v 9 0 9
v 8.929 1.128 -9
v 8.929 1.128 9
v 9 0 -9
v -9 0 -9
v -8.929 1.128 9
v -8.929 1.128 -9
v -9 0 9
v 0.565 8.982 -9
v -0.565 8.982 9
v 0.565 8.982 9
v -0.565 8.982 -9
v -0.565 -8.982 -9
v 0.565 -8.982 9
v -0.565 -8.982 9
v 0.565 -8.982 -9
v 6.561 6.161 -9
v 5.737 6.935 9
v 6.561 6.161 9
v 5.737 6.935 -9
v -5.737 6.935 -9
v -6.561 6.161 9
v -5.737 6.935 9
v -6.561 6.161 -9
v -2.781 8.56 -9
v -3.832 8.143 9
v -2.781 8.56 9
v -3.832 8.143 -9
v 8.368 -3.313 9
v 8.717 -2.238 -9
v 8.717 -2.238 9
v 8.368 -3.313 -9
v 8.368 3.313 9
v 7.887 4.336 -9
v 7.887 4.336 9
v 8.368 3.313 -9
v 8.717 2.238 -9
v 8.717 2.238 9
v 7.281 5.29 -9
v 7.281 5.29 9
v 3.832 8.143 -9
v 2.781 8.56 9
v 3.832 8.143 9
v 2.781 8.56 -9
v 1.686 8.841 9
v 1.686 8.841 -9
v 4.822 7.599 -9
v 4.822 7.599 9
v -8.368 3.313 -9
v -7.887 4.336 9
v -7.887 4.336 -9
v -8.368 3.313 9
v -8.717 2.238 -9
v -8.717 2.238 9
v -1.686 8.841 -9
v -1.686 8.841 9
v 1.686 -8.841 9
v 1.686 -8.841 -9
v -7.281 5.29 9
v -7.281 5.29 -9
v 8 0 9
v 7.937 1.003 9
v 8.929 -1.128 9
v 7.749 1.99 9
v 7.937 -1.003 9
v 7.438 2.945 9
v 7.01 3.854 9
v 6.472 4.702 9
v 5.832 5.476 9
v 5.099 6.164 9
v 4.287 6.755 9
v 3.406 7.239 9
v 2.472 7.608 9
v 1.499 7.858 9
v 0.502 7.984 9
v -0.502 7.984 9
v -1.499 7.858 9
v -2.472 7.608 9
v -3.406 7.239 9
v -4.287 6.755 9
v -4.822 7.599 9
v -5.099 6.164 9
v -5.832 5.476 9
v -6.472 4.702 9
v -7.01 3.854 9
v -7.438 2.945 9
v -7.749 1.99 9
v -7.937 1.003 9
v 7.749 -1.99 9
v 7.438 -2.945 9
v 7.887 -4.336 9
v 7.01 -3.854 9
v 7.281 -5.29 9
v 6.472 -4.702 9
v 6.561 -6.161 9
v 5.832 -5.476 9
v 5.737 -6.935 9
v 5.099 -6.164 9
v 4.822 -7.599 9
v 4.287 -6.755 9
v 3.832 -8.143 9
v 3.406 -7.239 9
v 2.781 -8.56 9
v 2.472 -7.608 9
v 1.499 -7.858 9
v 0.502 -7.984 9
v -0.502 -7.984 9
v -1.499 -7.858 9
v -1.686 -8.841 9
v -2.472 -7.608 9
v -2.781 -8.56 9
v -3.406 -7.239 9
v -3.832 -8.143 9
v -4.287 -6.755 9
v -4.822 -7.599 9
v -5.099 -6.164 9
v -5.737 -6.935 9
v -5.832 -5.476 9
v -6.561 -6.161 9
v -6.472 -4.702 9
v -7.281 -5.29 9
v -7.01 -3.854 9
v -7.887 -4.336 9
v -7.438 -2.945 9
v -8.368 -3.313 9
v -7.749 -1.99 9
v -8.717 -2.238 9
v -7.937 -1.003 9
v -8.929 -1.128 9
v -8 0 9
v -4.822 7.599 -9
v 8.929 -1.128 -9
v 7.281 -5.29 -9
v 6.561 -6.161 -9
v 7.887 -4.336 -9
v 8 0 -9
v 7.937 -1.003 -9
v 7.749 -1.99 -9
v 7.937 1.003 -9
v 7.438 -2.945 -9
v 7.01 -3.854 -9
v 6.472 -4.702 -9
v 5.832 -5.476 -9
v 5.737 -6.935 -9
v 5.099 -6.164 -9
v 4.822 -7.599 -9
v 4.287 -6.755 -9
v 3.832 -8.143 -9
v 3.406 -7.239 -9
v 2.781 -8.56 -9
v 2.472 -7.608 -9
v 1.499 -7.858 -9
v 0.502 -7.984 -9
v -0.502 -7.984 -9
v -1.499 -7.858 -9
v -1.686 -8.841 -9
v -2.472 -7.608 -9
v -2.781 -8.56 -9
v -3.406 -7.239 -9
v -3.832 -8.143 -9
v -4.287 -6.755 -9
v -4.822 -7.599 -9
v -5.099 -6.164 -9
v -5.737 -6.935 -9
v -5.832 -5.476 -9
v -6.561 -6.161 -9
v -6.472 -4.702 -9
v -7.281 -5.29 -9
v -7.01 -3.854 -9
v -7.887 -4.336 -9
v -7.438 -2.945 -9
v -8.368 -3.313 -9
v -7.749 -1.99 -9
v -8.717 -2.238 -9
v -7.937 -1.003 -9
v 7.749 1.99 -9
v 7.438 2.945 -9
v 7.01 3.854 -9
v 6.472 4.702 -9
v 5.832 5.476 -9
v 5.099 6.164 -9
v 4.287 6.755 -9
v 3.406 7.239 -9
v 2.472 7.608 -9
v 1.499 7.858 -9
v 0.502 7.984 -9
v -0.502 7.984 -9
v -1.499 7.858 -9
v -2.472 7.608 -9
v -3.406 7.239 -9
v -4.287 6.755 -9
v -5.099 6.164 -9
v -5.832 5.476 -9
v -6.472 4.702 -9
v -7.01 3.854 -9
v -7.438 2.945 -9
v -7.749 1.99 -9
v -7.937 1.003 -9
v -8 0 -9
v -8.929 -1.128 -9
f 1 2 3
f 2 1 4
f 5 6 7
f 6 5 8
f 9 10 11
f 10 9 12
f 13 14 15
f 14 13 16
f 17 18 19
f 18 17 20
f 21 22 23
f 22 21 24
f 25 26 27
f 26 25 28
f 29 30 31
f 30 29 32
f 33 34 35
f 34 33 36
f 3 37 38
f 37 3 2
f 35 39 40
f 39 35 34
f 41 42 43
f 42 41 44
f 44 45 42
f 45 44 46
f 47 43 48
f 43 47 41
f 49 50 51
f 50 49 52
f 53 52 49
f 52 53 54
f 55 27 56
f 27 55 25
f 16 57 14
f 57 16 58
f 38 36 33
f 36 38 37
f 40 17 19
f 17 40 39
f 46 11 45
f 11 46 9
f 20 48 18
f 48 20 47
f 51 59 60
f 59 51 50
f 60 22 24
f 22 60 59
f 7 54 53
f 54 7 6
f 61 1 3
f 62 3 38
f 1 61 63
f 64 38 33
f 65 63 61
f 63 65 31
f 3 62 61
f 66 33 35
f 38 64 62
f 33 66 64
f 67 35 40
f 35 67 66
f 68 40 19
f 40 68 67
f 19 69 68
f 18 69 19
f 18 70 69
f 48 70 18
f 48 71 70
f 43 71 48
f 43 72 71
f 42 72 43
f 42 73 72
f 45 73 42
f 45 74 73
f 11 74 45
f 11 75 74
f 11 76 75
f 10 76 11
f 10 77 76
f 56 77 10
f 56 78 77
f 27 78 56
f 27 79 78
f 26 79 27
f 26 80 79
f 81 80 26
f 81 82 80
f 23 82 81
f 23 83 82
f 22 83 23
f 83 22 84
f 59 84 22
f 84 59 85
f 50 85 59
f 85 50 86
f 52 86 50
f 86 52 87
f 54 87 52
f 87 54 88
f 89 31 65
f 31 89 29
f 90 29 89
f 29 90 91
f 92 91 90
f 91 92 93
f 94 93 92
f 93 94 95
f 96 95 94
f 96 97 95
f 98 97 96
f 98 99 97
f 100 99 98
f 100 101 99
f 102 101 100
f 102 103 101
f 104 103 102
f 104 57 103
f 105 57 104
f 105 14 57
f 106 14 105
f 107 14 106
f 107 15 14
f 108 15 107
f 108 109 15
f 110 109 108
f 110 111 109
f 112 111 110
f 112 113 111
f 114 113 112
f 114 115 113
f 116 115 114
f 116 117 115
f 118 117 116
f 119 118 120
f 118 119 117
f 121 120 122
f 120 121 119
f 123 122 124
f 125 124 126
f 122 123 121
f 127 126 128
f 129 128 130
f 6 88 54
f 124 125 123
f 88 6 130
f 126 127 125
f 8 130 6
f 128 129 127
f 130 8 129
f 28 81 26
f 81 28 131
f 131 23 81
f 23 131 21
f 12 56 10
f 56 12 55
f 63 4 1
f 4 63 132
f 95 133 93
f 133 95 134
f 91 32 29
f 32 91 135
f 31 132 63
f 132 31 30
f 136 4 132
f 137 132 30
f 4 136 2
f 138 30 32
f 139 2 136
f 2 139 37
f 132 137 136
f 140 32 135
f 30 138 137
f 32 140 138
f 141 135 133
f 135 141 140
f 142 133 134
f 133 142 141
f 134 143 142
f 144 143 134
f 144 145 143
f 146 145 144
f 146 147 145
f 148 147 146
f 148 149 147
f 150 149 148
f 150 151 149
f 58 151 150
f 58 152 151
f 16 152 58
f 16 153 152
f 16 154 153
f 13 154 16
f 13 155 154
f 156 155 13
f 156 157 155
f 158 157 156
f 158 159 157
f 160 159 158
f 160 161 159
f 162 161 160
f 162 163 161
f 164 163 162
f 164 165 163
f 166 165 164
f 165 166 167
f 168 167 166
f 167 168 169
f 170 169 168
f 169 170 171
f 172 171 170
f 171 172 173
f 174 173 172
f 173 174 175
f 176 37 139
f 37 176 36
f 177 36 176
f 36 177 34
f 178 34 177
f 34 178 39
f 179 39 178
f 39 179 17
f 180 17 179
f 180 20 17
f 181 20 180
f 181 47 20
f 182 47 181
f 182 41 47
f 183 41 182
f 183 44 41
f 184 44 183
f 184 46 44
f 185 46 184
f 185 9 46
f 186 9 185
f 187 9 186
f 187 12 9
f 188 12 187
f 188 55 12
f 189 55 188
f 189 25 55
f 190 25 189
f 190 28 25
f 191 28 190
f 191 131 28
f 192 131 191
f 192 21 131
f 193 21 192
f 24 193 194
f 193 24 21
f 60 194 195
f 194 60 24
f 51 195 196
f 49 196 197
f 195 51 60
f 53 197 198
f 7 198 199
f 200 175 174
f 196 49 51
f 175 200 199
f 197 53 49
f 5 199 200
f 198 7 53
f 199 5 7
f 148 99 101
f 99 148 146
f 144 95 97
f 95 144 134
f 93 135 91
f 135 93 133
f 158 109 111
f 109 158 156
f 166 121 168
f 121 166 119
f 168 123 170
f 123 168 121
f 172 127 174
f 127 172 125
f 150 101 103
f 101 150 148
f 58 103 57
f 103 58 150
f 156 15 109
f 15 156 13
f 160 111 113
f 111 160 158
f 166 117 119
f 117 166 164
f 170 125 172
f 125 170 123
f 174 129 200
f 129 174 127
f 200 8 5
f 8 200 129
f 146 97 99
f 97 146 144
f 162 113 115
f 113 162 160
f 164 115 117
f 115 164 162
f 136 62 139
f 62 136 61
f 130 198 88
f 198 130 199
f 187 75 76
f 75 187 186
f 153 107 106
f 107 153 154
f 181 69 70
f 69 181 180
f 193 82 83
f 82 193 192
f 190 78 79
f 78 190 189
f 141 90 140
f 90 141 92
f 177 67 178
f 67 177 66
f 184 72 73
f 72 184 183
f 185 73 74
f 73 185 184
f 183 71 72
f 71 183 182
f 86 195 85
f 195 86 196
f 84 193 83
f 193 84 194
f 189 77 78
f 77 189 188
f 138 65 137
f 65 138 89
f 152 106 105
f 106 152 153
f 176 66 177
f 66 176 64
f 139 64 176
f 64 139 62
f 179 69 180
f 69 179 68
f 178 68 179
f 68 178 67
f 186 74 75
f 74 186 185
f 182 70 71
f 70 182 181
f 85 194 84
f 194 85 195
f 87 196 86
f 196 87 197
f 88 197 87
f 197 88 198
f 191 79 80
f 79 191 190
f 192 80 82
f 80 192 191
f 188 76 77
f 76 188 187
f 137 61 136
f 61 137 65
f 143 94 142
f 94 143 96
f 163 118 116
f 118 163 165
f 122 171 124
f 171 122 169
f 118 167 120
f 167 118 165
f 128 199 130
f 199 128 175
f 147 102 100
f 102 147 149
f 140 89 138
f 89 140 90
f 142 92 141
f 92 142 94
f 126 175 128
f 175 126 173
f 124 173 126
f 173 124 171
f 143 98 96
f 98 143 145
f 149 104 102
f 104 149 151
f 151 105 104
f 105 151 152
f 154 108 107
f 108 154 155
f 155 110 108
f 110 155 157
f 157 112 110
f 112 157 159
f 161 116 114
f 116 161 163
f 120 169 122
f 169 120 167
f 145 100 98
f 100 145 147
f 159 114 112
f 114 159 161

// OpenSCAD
$fn = 50;


difference() {
	union() {
		translate(v = [0, 0, -9.0000000000]) {
			cylinder(h = 18, r = 9.0000000000);
		}
	}
	union() {
		translate(v = [0, 0, -100.0000000000]) {
			cylinder(h = 200, r = 8);
		}
	}
}
